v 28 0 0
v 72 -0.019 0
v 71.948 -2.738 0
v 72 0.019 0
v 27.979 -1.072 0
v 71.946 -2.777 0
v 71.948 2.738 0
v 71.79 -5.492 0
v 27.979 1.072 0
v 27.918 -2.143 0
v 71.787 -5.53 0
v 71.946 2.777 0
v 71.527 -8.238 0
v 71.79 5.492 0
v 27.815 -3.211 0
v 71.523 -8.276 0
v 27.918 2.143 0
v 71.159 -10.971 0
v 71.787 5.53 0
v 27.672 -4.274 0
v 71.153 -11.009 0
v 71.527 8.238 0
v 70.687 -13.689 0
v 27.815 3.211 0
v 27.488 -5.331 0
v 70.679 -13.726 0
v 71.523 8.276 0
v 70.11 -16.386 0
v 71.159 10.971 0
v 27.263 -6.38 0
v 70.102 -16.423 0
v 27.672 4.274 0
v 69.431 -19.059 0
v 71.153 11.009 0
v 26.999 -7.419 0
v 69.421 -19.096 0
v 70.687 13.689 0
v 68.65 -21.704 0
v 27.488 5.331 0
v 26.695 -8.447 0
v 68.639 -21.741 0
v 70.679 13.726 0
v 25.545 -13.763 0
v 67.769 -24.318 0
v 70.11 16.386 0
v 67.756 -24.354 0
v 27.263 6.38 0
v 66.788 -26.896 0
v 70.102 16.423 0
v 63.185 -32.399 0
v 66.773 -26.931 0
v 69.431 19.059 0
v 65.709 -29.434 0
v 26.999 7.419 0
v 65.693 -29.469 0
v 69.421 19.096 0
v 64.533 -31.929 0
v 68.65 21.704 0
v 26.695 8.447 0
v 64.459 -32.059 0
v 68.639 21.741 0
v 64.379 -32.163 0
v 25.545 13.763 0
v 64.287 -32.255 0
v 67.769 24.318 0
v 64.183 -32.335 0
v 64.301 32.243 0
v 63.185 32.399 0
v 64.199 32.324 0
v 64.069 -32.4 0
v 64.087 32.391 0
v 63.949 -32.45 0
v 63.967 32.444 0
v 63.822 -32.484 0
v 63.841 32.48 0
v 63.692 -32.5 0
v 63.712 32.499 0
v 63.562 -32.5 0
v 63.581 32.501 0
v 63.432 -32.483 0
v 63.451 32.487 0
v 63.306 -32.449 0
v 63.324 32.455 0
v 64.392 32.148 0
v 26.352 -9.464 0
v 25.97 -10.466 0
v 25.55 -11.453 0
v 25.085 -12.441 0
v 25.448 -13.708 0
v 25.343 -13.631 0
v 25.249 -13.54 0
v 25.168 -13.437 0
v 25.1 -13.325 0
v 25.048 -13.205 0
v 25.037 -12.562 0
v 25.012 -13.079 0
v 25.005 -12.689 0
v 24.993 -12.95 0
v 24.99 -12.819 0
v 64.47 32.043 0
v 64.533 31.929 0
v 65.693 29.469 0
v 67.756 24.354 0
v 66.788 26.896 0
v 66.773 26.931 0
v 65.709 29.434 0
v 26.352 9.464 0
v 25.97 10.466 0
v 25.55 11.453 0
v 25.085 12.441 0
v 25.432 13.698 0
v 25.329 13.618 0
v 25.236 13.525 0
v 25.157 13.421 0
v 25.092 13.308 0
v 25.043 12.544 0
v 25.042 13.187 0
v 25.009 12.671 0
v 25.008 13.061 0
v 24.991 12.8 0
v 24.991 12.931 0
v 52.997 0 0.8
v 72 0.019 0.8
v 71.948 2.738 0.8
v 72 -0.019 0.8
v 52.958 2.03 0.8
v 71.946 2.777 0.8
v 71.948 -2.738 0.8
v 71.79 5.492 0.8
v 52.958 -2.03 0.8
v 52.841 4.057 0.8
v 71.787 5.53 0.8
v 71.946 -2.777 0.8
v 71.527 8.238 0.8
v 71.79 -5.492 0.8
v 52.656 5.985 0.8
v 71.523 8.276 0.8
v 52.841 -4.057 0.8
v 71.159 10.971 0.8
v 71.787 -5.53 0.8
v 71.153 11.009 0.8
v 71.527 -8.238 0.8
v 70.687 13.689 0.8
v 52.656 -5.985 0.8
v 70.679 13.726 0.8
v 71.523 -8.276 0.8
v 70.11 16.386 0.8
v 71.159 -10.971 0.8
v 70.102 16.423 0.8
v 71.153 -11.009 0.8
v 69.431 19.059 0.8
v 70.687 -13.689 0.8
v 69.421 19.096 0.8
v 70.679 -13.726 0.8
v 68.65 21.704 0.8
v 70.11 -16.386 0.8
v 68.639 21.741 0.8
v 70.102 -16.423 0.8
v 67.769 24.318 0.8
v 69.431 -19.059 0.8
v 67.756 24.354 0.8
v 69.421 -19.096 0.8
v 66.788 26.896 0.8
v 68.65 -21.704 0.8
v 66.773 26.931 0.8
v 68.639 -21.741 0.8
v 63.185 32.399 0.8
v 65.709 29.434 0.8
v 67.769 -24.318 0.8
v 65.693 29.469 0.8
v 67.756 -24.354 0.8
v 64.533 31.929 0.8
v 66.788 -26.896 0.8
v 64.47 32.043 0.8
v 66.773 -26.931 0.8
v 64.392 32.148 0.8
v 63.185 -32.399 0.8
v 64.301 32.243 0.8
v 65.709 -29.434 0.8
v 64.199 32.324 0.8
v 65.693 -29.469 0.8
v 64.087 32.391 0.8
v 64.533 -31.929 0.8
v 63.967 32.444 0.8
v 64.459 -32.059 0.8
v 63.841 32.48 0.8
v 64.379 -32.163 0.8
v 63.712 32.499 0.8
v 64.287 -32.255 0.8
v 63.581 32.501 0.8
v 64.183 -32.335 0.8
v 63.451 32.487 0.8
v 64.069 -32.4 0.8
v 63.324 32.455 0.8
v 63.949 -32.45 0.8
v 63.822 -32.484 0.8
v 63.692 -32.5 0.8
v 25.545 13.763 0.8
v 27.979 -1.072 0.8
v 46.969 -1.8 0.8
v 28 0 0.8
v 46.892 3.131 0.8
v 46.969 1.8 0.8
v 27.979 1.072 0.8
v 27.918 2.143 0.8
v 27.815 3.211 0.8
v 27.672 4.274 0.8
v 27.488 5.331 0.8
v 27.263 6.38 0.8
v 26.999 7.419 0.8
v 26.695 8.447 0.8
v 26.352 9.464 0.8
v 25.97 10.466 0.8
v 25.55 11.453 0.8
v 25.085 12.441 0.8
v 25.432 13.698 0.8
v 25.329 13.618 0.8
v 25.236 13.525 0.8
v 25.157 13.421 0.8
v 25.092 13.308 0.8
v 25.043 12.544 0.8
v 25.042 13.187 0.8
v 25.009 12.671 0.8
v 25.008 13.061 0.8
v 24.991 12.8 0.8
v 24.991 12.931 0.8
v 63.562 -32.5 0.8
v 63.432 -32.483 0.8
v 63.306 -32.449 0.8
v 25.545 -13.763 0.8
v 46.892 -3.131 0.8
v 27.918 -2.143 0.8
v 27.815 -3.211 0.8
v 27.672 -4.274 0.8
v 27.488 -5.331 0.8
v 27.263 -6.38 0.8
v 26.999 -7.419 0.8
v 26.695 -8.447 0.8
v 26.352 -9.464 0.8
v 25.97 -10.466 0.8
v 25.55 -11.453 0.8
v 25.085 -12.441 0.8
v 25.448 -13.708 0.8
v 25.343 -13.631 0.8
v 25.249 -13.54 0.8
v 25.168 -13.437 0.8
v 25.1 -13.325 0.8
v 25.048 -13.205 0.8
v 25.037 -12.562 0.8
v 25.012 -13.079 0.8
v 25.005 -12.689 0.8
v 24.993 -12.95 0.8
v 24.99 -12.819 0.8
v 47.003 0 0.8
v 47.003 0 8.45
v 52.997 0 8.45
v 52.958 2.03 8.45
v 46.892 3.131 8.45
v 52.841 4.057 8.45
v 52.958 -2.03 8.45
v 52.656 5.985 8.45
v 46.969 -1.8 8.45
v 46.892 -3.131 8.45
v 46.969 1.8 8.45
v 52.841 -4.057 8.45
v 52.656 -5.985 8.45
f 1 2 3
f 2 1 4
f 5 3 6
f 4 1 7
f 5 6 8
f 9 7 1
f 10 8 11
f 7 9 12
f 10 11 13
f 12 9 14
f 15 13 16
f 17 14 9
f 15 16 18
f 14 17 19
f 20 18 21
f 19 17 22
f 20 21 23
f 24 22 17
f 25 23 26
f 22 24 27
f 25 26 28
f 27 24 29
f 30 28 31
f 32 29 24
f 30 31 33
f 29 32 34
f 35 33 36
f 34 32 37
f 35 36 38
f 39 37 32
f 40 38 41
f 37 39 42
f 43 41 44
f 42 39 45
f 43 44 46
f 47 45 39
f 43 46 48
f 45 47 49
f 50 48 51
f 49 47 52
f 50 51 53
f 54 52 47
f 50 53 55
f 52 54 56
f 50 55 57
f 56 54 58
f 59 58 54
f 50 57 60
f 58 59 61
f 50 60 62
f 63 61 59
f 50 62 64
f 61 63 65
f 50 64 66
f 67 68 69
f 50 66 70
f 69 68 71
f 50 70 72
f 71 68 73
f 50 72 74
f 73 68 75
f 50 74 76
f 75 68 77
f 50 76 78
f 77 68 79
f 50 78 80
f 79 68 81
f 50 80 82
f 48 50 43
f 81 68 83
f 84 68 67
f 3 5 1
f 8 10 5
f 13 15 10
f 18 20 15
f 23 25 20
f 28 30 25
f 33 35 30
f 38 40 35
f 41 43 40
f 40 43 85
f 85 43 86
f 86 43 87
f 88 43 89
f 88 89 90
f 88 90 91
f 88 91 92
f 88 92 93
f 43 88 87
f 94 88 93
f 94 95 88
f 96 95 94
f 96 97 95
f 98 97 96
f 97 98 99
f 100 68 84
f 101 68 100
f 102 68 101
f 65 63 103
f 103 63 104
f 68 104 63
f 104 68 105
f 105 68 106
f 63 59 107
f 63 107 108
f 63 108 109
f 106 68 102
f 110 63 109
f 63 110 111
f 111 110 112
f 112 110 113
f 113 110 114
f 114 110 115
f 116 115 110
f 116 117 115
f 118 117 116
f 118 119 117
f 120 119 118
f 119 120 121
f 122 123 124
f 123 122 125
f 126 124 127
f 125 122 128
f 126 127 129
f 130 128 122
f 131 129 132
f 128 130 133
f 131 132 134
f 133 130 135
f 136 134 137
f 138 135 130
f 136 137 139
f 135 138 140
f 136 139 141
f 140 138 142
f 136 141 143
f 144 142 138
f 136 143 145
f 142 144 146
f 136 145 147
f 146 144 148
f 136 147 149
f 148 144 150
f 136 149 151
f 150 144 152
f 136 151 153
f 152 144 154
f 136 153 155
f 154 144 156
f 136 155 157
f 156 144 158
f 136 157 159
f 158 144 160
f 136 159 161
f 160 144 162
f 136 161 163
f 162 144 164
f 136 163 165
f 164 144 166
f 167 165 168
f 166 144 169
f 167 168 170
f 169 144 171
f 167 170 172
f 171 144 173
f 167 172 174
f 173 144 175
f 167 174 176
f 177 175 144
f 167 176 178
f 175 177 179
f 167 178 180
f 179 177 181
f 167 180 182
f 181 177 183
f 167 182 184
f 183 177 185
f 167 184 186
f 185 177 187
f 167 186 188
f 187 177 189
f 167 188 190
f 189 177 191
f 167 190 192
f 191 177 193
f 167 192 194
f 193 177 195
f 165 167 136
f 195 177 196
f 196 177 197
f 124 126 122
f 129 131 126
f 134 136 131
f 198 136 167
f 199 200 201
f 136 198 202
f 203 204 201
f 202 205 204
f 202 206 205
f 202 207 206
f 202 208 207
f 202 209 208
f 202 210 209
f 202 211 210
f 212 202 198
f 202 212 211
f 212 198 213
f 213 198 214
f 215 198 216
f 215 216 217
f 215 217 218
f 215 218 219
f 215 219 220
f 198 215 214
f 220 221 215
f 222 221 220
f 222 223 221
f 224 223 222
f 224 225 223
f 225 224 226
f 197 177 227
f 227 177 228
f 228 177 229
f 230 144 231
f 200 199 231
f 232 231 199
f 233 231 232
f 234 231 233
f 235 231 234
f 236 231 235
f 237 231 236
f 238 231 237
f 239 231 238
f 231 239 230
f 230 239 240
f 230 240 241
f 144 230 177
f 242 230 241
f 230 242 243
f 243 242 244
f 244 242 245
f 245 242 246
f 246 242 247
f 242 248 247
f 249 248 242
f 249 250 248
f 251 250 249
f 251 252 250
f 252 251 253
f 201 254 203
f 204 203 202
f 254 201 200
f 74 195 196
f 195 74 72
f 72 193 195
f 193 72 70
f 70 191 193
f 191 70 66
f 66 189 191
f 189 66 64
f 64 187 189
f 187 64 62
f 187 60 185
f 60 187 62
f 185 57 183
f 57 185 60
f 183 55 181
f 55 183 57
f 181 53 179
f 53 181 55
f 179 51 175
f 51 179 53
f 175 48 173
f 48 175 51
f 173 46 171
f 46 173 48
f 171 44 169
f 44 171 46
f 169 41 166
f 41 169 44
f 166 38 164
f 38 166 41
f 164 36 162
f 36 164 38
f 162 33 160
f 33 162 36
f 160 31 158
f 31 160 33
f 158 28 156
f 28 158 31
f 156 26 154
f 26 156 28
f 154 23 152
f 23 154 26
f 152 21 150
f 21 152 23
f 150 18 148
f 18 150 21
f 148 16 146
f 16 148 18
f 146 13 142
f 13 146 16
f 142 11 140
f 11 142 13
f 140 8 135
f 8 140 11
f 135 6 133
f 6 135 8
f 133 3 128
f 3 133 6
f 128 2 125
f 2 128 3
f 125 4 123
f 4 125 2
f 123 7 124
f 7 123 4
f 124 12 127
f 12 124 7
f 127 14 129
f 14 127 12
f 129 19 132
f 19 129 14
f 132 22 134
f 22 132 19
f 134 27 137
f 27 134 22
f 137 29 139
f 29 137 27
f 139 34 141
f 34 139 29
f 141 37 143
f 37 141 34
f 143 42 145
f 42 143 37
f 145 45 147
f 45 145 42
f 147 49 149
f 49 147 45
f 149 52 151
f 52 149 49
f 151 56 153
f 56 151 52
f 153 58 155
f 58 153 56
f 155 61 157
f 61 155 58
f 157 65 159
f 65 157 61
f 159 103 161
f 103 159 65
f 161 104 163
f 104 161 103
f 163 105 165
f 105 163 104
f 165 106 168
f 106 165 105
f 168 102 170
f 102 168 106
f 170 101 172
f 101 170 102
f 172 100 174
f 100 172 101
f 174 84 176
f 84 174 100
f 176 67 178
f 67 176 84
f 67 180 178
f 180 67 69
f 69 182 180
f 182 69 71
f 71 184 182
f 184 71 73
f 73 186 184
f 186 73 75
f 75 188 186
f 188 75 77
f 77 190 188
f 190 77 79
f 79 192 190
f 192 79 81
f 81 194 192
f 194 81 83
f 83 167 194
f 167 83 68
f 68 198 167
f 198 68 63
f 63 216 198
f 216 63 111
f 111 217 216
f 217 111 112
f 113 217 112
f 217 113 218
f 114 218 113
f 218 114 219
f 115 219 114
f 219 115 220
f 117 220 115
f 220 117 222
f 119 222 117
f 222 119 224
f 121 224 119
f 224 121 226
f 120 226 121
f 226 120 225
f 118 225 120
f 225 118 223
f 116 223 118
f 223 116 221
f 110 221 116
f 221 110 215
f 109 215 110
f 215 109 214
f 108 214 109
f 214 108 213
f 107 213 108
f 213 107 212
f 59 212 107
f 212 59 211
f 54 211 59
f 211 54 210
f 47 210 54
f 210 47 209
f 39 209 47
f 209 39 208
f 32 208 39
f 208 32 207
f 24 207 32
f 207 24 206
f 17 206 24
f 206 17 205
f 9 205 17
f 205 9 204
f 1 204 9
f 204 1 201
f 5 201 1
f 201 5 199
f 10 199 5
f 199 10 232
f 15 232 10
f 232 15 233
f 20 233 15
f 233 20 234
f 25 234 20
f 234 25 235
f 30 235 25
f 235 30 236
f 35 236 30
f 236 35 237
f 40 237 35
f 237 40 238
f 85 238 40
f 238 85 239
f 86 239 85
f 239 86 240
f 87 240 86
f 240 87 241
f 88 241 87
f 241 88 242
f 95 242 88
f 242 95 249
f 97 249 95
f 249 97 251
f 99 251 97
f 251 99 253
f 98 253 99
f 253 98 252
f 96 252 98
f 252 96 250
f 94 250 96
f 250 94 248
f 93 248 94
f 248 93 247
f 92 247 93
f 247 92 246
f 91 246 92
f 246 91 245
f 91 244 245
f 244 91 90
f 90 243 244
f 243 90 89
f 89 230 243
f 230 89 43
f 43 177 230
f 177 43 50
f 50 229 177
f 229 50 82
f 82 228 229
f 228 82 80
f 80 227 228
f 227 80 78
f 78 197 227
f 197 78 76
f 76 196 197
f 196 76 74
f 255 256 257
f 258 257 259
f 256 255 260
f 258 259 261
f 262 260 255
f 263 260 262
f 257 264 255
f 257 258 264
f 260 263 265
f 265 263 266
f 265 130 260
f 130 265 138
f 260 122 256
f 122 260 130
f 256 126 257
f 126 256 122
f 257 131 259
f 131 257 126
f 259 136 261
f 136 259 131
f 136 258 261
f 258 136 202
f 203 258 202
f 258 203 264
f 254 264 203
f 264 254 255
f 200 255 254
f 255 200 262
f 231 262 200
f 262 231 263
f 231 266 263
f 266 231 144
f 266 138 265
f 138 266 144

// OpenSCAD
// file: parameters.scad
// =============================================================================
// Gen-BM — nightly 2026-10-06 (physics_scorer, honest magpylib watts)
// Lowest-gap pancake: Ø20 ring at R52 (Ø5 assists R42/52/62) with low-profile 7.65 mm dense-wound copper and an 18 mm radial build on wide 29–71 mm sector bobbins — the smallest magnet gap of the series (10.25 mm) — on thick 1/4" (6.35 mm) steel so the higher flux per pole stays well clear of saturation.
// Clocking 0 deg (magnets N facing S) + D-flat keyed bore + index notch + flip-symmetric hole map.
// Windable 2-piece bobbin; turns = physics_scorer turns_fit; copper only between flanges.
// Steel back-iron: 2× Ø138 × 6.35 mm (1/4") mild-steel discs (steel_backiron_disc.dxf); magnets sit ON the steel
// (through-pockets) -> score with --back-iron.
// =============================================================================
topology            = "dual_rotor";

// --- Wire / winding (physics_scorer winding-fit) -------------------------------
wire_awg            = 26;
wire_od             = 0.45;     // insulated OD mm (bare 0.405)
fill_realistic      = 0.65;     // insulated-wire area / window (DENSE layered wind with a jig; scorer cap 0.65)
turns               = 562;       // = physics_scorer turns_fit (do NOT raise)
coil_former_type    = "bobbin";
coil_core_inset     = 18.00;     // radial copper build: hub = copper boundary inset by this
wind_build_axial    = 0.0;      // nothing proud of the flanges
wind_build_radial   = 0.0;

// --- Bobbin (base + lid) ---------------------------------------------------------
coil_id_r           = 29.00;    // copper boundary sector
coil_od_r           = 71.00;
span_deg            = 52.68;    // = pitch - 2*asin((wall+0.85)/coil_id_r) -> >=1.2 mm stator web
former_web          = 7.65;     // copper height between flanges (TALL copper: steel keeps Bz up)
flange_t            = 0.80;     // >= 0.8 mm FDM wall rule (tall winds push on the flanges)
wall                = 1.00;     // flange lip beyond copper
former_bare_h       = former_web + 2 * flange_t;
coil_envelope_h     = former_bare_h + 2 * wind_build_axial;
tab_w               = 7.0;
tab_len             = 7.0;
tab_h               = former_bare_h / 2;
pin_d               = 1.9;      // 1.75 mm filament locating pin
coil_mount_r        = coil_od_r + 0.2 + 4.0;
lead_y              = 1.6;
lead_slot_w         = 0.9;
lead_groove_d       = 0.6;

// --- Gap -------------------------------------------------------------------------
run_clear           = 0.50;     // rotor face -> flange
gap_spacer_h        = run_clear + wind_build_axial;
m2m                 = coil_envelope_h + 2 * run_clear;   // rotor face to rotor face (= gap_sleeve length)

// --- Stator ----------------------------------------------------------------------
coil_stations       = 6;
bay_clear           = 0.25;
stator_thick        = former_bare_h;                        // bobbins flush both faces
stator_od           = 160.0;
shaft_clear_stator  = 14.0;     // stator is static; gap sleeve OD 12 spins inside

// --- Rotor(s) --------------------------------------------------------------------
magnet_Br           = 1.43;     // N52
magnet_d_large      = 20.0;
magnet_h_large      = 5.0;      // one O20x5 per pocket
magnet_h_small      = 5.0;      // one O5x5 per pocket
halbach_magnetisation = "diametric"; // O5x5 assist magnets MUST be DIAMETRICALLY magnetised (tangential)
rotor_b_same_axis   = true;     // same-index magnets share one axis: N faces S across the gap
large_pocket_d      = 20.3;
small_pocket_d      = 5.3;
pocket_h            = 5.10;     // THROUGH the carrier: magnet back face sits on the steel disc
large_n             = 8;
R_large             = 52.0;
R_small_inner       = 42.0;
R_small_mid         = 52.0;
R_small_outer       = 62.0;
small_r_list        = [R_small_inner, R_small_mid, R_small_outer];   // O5 pockets between poles
carrier_od          = 138.0;
carrier_thick       = pocket_h;
hub_h               = 13.5;     // > steel_t + insert: radial set-screw clears the steel
hub_od              = 24.0;     // slim hub so the M4 brace rods fit at R~18 inside the coil ring
hub_insert_d        = 4.0;      // M3 heat-set insert, radial, bears on the D-flat
rotor_b_offset_deg  = 0.0;      // CLOCKING: magnets directly opposite
shaft_key           = "dflat";
dflat_depth         = 0.5;      // 8 mm shaft with 0.5 mm flat (7.5 across flat)
index_notch_d       = 3.0;

// --- Steel back-iron (buyable laser-cut) -------------------------------------------
steel_t             = 6.35;      // mild steel thickness (image method ignores it; sized from steel_flux.py so the return path stays well below saturation)
steel_center_hole   = 26.0;     // slips over the rotor hub (OD 24)
steel_od            = carrier_od;   // steel disc OD = rotor carrier OD

// --- Modular MAX interface ----------------------------------------------------------
shaft_bore          = 8.35;
dflat_x             = 4.0 - dflat_depth + (shaft_bore - 8.0) / 2;
bearing_d           = 21.85;
bearing_h           = 7.2;
m3_clear            = 3.5;
bolt_r_inner        = 30.0;     // M3 steel-disc clamp bolts (inside the magnet ring)
bolt_n_inner        = 4;
bolt_inner_angles   = [0, 90, 180, 270];
bolt_r_outer        = 65.0;     // M3 steel-disc clamp bolts (outside the magnet ring)
bolt_outer_angles   = [45, 135, 225, 315];
flange_bolt_r       = 75.0;     // frame rods: OUTSIDE the rotor OD (rotors spin inside them)
flange_bolt_n       = 6;
flange_bolt_offset  = 30.00;    // between coil stations -> never cuts a lead groove/tab
brace_r             = 18.0;
brace_d             = 4.3;      // temporary M4 jack rods (assembly only)
brace_n             = 4;
brace_angles        = [45, 135, 225, 315];          // flip-symmetric

spacer_pad_od       = 14.0;
spacer_pad_id       = m3_clear;
endbell_od          = 160.0;
endbell_thick       = 8.0;
endbell_shaft_clear = 10.0;
collar_h            = 10.0;
standoff_od         = 9.0;
frame_standoff_h    = run_clear + carrier_thick + hub_h + collar_h + 2.0;
sleeve_od           = 12.0;
plate_max_mm        = 410;

$fn = 64;
// main file
// Gen-BM — bobbin BASE (bottom flange + hub). Print x6, flange down. Wind 26 AWG x 562 t around
// the hub with the LID glued on (coil_lid.stl). Copper lives ONLY between the flanges (no proud winds).
include <parameters.scad>;
$fn = 48;
module sector_2d(r_in, r_out, ang) {
    polygon([
        for (a = [-ang/2 : ang/24 : ang/2]) [r_in*cos(a), r_in*sin(a)],
        for (a = [ang/2 : -ang/24 : -ang/2]) [r_out*cos(a), r_out*sin(a)]
    ]);
}
module footprint_2d() { offset(r=wall) sector_2d(coil_id_r, coil_od_r, span_deg); }
module hub_2d()       { offset(delta=-coil_core_inset) sector_2d(coil_id_r, coil_od_r, span_deg); }

union() {
    linear_extrude(flange_t) footprint_2d();
    translate([0, 0, flange_t - 0.01]) linear_extrude(former_web + 0.01) hub_2d();
}
